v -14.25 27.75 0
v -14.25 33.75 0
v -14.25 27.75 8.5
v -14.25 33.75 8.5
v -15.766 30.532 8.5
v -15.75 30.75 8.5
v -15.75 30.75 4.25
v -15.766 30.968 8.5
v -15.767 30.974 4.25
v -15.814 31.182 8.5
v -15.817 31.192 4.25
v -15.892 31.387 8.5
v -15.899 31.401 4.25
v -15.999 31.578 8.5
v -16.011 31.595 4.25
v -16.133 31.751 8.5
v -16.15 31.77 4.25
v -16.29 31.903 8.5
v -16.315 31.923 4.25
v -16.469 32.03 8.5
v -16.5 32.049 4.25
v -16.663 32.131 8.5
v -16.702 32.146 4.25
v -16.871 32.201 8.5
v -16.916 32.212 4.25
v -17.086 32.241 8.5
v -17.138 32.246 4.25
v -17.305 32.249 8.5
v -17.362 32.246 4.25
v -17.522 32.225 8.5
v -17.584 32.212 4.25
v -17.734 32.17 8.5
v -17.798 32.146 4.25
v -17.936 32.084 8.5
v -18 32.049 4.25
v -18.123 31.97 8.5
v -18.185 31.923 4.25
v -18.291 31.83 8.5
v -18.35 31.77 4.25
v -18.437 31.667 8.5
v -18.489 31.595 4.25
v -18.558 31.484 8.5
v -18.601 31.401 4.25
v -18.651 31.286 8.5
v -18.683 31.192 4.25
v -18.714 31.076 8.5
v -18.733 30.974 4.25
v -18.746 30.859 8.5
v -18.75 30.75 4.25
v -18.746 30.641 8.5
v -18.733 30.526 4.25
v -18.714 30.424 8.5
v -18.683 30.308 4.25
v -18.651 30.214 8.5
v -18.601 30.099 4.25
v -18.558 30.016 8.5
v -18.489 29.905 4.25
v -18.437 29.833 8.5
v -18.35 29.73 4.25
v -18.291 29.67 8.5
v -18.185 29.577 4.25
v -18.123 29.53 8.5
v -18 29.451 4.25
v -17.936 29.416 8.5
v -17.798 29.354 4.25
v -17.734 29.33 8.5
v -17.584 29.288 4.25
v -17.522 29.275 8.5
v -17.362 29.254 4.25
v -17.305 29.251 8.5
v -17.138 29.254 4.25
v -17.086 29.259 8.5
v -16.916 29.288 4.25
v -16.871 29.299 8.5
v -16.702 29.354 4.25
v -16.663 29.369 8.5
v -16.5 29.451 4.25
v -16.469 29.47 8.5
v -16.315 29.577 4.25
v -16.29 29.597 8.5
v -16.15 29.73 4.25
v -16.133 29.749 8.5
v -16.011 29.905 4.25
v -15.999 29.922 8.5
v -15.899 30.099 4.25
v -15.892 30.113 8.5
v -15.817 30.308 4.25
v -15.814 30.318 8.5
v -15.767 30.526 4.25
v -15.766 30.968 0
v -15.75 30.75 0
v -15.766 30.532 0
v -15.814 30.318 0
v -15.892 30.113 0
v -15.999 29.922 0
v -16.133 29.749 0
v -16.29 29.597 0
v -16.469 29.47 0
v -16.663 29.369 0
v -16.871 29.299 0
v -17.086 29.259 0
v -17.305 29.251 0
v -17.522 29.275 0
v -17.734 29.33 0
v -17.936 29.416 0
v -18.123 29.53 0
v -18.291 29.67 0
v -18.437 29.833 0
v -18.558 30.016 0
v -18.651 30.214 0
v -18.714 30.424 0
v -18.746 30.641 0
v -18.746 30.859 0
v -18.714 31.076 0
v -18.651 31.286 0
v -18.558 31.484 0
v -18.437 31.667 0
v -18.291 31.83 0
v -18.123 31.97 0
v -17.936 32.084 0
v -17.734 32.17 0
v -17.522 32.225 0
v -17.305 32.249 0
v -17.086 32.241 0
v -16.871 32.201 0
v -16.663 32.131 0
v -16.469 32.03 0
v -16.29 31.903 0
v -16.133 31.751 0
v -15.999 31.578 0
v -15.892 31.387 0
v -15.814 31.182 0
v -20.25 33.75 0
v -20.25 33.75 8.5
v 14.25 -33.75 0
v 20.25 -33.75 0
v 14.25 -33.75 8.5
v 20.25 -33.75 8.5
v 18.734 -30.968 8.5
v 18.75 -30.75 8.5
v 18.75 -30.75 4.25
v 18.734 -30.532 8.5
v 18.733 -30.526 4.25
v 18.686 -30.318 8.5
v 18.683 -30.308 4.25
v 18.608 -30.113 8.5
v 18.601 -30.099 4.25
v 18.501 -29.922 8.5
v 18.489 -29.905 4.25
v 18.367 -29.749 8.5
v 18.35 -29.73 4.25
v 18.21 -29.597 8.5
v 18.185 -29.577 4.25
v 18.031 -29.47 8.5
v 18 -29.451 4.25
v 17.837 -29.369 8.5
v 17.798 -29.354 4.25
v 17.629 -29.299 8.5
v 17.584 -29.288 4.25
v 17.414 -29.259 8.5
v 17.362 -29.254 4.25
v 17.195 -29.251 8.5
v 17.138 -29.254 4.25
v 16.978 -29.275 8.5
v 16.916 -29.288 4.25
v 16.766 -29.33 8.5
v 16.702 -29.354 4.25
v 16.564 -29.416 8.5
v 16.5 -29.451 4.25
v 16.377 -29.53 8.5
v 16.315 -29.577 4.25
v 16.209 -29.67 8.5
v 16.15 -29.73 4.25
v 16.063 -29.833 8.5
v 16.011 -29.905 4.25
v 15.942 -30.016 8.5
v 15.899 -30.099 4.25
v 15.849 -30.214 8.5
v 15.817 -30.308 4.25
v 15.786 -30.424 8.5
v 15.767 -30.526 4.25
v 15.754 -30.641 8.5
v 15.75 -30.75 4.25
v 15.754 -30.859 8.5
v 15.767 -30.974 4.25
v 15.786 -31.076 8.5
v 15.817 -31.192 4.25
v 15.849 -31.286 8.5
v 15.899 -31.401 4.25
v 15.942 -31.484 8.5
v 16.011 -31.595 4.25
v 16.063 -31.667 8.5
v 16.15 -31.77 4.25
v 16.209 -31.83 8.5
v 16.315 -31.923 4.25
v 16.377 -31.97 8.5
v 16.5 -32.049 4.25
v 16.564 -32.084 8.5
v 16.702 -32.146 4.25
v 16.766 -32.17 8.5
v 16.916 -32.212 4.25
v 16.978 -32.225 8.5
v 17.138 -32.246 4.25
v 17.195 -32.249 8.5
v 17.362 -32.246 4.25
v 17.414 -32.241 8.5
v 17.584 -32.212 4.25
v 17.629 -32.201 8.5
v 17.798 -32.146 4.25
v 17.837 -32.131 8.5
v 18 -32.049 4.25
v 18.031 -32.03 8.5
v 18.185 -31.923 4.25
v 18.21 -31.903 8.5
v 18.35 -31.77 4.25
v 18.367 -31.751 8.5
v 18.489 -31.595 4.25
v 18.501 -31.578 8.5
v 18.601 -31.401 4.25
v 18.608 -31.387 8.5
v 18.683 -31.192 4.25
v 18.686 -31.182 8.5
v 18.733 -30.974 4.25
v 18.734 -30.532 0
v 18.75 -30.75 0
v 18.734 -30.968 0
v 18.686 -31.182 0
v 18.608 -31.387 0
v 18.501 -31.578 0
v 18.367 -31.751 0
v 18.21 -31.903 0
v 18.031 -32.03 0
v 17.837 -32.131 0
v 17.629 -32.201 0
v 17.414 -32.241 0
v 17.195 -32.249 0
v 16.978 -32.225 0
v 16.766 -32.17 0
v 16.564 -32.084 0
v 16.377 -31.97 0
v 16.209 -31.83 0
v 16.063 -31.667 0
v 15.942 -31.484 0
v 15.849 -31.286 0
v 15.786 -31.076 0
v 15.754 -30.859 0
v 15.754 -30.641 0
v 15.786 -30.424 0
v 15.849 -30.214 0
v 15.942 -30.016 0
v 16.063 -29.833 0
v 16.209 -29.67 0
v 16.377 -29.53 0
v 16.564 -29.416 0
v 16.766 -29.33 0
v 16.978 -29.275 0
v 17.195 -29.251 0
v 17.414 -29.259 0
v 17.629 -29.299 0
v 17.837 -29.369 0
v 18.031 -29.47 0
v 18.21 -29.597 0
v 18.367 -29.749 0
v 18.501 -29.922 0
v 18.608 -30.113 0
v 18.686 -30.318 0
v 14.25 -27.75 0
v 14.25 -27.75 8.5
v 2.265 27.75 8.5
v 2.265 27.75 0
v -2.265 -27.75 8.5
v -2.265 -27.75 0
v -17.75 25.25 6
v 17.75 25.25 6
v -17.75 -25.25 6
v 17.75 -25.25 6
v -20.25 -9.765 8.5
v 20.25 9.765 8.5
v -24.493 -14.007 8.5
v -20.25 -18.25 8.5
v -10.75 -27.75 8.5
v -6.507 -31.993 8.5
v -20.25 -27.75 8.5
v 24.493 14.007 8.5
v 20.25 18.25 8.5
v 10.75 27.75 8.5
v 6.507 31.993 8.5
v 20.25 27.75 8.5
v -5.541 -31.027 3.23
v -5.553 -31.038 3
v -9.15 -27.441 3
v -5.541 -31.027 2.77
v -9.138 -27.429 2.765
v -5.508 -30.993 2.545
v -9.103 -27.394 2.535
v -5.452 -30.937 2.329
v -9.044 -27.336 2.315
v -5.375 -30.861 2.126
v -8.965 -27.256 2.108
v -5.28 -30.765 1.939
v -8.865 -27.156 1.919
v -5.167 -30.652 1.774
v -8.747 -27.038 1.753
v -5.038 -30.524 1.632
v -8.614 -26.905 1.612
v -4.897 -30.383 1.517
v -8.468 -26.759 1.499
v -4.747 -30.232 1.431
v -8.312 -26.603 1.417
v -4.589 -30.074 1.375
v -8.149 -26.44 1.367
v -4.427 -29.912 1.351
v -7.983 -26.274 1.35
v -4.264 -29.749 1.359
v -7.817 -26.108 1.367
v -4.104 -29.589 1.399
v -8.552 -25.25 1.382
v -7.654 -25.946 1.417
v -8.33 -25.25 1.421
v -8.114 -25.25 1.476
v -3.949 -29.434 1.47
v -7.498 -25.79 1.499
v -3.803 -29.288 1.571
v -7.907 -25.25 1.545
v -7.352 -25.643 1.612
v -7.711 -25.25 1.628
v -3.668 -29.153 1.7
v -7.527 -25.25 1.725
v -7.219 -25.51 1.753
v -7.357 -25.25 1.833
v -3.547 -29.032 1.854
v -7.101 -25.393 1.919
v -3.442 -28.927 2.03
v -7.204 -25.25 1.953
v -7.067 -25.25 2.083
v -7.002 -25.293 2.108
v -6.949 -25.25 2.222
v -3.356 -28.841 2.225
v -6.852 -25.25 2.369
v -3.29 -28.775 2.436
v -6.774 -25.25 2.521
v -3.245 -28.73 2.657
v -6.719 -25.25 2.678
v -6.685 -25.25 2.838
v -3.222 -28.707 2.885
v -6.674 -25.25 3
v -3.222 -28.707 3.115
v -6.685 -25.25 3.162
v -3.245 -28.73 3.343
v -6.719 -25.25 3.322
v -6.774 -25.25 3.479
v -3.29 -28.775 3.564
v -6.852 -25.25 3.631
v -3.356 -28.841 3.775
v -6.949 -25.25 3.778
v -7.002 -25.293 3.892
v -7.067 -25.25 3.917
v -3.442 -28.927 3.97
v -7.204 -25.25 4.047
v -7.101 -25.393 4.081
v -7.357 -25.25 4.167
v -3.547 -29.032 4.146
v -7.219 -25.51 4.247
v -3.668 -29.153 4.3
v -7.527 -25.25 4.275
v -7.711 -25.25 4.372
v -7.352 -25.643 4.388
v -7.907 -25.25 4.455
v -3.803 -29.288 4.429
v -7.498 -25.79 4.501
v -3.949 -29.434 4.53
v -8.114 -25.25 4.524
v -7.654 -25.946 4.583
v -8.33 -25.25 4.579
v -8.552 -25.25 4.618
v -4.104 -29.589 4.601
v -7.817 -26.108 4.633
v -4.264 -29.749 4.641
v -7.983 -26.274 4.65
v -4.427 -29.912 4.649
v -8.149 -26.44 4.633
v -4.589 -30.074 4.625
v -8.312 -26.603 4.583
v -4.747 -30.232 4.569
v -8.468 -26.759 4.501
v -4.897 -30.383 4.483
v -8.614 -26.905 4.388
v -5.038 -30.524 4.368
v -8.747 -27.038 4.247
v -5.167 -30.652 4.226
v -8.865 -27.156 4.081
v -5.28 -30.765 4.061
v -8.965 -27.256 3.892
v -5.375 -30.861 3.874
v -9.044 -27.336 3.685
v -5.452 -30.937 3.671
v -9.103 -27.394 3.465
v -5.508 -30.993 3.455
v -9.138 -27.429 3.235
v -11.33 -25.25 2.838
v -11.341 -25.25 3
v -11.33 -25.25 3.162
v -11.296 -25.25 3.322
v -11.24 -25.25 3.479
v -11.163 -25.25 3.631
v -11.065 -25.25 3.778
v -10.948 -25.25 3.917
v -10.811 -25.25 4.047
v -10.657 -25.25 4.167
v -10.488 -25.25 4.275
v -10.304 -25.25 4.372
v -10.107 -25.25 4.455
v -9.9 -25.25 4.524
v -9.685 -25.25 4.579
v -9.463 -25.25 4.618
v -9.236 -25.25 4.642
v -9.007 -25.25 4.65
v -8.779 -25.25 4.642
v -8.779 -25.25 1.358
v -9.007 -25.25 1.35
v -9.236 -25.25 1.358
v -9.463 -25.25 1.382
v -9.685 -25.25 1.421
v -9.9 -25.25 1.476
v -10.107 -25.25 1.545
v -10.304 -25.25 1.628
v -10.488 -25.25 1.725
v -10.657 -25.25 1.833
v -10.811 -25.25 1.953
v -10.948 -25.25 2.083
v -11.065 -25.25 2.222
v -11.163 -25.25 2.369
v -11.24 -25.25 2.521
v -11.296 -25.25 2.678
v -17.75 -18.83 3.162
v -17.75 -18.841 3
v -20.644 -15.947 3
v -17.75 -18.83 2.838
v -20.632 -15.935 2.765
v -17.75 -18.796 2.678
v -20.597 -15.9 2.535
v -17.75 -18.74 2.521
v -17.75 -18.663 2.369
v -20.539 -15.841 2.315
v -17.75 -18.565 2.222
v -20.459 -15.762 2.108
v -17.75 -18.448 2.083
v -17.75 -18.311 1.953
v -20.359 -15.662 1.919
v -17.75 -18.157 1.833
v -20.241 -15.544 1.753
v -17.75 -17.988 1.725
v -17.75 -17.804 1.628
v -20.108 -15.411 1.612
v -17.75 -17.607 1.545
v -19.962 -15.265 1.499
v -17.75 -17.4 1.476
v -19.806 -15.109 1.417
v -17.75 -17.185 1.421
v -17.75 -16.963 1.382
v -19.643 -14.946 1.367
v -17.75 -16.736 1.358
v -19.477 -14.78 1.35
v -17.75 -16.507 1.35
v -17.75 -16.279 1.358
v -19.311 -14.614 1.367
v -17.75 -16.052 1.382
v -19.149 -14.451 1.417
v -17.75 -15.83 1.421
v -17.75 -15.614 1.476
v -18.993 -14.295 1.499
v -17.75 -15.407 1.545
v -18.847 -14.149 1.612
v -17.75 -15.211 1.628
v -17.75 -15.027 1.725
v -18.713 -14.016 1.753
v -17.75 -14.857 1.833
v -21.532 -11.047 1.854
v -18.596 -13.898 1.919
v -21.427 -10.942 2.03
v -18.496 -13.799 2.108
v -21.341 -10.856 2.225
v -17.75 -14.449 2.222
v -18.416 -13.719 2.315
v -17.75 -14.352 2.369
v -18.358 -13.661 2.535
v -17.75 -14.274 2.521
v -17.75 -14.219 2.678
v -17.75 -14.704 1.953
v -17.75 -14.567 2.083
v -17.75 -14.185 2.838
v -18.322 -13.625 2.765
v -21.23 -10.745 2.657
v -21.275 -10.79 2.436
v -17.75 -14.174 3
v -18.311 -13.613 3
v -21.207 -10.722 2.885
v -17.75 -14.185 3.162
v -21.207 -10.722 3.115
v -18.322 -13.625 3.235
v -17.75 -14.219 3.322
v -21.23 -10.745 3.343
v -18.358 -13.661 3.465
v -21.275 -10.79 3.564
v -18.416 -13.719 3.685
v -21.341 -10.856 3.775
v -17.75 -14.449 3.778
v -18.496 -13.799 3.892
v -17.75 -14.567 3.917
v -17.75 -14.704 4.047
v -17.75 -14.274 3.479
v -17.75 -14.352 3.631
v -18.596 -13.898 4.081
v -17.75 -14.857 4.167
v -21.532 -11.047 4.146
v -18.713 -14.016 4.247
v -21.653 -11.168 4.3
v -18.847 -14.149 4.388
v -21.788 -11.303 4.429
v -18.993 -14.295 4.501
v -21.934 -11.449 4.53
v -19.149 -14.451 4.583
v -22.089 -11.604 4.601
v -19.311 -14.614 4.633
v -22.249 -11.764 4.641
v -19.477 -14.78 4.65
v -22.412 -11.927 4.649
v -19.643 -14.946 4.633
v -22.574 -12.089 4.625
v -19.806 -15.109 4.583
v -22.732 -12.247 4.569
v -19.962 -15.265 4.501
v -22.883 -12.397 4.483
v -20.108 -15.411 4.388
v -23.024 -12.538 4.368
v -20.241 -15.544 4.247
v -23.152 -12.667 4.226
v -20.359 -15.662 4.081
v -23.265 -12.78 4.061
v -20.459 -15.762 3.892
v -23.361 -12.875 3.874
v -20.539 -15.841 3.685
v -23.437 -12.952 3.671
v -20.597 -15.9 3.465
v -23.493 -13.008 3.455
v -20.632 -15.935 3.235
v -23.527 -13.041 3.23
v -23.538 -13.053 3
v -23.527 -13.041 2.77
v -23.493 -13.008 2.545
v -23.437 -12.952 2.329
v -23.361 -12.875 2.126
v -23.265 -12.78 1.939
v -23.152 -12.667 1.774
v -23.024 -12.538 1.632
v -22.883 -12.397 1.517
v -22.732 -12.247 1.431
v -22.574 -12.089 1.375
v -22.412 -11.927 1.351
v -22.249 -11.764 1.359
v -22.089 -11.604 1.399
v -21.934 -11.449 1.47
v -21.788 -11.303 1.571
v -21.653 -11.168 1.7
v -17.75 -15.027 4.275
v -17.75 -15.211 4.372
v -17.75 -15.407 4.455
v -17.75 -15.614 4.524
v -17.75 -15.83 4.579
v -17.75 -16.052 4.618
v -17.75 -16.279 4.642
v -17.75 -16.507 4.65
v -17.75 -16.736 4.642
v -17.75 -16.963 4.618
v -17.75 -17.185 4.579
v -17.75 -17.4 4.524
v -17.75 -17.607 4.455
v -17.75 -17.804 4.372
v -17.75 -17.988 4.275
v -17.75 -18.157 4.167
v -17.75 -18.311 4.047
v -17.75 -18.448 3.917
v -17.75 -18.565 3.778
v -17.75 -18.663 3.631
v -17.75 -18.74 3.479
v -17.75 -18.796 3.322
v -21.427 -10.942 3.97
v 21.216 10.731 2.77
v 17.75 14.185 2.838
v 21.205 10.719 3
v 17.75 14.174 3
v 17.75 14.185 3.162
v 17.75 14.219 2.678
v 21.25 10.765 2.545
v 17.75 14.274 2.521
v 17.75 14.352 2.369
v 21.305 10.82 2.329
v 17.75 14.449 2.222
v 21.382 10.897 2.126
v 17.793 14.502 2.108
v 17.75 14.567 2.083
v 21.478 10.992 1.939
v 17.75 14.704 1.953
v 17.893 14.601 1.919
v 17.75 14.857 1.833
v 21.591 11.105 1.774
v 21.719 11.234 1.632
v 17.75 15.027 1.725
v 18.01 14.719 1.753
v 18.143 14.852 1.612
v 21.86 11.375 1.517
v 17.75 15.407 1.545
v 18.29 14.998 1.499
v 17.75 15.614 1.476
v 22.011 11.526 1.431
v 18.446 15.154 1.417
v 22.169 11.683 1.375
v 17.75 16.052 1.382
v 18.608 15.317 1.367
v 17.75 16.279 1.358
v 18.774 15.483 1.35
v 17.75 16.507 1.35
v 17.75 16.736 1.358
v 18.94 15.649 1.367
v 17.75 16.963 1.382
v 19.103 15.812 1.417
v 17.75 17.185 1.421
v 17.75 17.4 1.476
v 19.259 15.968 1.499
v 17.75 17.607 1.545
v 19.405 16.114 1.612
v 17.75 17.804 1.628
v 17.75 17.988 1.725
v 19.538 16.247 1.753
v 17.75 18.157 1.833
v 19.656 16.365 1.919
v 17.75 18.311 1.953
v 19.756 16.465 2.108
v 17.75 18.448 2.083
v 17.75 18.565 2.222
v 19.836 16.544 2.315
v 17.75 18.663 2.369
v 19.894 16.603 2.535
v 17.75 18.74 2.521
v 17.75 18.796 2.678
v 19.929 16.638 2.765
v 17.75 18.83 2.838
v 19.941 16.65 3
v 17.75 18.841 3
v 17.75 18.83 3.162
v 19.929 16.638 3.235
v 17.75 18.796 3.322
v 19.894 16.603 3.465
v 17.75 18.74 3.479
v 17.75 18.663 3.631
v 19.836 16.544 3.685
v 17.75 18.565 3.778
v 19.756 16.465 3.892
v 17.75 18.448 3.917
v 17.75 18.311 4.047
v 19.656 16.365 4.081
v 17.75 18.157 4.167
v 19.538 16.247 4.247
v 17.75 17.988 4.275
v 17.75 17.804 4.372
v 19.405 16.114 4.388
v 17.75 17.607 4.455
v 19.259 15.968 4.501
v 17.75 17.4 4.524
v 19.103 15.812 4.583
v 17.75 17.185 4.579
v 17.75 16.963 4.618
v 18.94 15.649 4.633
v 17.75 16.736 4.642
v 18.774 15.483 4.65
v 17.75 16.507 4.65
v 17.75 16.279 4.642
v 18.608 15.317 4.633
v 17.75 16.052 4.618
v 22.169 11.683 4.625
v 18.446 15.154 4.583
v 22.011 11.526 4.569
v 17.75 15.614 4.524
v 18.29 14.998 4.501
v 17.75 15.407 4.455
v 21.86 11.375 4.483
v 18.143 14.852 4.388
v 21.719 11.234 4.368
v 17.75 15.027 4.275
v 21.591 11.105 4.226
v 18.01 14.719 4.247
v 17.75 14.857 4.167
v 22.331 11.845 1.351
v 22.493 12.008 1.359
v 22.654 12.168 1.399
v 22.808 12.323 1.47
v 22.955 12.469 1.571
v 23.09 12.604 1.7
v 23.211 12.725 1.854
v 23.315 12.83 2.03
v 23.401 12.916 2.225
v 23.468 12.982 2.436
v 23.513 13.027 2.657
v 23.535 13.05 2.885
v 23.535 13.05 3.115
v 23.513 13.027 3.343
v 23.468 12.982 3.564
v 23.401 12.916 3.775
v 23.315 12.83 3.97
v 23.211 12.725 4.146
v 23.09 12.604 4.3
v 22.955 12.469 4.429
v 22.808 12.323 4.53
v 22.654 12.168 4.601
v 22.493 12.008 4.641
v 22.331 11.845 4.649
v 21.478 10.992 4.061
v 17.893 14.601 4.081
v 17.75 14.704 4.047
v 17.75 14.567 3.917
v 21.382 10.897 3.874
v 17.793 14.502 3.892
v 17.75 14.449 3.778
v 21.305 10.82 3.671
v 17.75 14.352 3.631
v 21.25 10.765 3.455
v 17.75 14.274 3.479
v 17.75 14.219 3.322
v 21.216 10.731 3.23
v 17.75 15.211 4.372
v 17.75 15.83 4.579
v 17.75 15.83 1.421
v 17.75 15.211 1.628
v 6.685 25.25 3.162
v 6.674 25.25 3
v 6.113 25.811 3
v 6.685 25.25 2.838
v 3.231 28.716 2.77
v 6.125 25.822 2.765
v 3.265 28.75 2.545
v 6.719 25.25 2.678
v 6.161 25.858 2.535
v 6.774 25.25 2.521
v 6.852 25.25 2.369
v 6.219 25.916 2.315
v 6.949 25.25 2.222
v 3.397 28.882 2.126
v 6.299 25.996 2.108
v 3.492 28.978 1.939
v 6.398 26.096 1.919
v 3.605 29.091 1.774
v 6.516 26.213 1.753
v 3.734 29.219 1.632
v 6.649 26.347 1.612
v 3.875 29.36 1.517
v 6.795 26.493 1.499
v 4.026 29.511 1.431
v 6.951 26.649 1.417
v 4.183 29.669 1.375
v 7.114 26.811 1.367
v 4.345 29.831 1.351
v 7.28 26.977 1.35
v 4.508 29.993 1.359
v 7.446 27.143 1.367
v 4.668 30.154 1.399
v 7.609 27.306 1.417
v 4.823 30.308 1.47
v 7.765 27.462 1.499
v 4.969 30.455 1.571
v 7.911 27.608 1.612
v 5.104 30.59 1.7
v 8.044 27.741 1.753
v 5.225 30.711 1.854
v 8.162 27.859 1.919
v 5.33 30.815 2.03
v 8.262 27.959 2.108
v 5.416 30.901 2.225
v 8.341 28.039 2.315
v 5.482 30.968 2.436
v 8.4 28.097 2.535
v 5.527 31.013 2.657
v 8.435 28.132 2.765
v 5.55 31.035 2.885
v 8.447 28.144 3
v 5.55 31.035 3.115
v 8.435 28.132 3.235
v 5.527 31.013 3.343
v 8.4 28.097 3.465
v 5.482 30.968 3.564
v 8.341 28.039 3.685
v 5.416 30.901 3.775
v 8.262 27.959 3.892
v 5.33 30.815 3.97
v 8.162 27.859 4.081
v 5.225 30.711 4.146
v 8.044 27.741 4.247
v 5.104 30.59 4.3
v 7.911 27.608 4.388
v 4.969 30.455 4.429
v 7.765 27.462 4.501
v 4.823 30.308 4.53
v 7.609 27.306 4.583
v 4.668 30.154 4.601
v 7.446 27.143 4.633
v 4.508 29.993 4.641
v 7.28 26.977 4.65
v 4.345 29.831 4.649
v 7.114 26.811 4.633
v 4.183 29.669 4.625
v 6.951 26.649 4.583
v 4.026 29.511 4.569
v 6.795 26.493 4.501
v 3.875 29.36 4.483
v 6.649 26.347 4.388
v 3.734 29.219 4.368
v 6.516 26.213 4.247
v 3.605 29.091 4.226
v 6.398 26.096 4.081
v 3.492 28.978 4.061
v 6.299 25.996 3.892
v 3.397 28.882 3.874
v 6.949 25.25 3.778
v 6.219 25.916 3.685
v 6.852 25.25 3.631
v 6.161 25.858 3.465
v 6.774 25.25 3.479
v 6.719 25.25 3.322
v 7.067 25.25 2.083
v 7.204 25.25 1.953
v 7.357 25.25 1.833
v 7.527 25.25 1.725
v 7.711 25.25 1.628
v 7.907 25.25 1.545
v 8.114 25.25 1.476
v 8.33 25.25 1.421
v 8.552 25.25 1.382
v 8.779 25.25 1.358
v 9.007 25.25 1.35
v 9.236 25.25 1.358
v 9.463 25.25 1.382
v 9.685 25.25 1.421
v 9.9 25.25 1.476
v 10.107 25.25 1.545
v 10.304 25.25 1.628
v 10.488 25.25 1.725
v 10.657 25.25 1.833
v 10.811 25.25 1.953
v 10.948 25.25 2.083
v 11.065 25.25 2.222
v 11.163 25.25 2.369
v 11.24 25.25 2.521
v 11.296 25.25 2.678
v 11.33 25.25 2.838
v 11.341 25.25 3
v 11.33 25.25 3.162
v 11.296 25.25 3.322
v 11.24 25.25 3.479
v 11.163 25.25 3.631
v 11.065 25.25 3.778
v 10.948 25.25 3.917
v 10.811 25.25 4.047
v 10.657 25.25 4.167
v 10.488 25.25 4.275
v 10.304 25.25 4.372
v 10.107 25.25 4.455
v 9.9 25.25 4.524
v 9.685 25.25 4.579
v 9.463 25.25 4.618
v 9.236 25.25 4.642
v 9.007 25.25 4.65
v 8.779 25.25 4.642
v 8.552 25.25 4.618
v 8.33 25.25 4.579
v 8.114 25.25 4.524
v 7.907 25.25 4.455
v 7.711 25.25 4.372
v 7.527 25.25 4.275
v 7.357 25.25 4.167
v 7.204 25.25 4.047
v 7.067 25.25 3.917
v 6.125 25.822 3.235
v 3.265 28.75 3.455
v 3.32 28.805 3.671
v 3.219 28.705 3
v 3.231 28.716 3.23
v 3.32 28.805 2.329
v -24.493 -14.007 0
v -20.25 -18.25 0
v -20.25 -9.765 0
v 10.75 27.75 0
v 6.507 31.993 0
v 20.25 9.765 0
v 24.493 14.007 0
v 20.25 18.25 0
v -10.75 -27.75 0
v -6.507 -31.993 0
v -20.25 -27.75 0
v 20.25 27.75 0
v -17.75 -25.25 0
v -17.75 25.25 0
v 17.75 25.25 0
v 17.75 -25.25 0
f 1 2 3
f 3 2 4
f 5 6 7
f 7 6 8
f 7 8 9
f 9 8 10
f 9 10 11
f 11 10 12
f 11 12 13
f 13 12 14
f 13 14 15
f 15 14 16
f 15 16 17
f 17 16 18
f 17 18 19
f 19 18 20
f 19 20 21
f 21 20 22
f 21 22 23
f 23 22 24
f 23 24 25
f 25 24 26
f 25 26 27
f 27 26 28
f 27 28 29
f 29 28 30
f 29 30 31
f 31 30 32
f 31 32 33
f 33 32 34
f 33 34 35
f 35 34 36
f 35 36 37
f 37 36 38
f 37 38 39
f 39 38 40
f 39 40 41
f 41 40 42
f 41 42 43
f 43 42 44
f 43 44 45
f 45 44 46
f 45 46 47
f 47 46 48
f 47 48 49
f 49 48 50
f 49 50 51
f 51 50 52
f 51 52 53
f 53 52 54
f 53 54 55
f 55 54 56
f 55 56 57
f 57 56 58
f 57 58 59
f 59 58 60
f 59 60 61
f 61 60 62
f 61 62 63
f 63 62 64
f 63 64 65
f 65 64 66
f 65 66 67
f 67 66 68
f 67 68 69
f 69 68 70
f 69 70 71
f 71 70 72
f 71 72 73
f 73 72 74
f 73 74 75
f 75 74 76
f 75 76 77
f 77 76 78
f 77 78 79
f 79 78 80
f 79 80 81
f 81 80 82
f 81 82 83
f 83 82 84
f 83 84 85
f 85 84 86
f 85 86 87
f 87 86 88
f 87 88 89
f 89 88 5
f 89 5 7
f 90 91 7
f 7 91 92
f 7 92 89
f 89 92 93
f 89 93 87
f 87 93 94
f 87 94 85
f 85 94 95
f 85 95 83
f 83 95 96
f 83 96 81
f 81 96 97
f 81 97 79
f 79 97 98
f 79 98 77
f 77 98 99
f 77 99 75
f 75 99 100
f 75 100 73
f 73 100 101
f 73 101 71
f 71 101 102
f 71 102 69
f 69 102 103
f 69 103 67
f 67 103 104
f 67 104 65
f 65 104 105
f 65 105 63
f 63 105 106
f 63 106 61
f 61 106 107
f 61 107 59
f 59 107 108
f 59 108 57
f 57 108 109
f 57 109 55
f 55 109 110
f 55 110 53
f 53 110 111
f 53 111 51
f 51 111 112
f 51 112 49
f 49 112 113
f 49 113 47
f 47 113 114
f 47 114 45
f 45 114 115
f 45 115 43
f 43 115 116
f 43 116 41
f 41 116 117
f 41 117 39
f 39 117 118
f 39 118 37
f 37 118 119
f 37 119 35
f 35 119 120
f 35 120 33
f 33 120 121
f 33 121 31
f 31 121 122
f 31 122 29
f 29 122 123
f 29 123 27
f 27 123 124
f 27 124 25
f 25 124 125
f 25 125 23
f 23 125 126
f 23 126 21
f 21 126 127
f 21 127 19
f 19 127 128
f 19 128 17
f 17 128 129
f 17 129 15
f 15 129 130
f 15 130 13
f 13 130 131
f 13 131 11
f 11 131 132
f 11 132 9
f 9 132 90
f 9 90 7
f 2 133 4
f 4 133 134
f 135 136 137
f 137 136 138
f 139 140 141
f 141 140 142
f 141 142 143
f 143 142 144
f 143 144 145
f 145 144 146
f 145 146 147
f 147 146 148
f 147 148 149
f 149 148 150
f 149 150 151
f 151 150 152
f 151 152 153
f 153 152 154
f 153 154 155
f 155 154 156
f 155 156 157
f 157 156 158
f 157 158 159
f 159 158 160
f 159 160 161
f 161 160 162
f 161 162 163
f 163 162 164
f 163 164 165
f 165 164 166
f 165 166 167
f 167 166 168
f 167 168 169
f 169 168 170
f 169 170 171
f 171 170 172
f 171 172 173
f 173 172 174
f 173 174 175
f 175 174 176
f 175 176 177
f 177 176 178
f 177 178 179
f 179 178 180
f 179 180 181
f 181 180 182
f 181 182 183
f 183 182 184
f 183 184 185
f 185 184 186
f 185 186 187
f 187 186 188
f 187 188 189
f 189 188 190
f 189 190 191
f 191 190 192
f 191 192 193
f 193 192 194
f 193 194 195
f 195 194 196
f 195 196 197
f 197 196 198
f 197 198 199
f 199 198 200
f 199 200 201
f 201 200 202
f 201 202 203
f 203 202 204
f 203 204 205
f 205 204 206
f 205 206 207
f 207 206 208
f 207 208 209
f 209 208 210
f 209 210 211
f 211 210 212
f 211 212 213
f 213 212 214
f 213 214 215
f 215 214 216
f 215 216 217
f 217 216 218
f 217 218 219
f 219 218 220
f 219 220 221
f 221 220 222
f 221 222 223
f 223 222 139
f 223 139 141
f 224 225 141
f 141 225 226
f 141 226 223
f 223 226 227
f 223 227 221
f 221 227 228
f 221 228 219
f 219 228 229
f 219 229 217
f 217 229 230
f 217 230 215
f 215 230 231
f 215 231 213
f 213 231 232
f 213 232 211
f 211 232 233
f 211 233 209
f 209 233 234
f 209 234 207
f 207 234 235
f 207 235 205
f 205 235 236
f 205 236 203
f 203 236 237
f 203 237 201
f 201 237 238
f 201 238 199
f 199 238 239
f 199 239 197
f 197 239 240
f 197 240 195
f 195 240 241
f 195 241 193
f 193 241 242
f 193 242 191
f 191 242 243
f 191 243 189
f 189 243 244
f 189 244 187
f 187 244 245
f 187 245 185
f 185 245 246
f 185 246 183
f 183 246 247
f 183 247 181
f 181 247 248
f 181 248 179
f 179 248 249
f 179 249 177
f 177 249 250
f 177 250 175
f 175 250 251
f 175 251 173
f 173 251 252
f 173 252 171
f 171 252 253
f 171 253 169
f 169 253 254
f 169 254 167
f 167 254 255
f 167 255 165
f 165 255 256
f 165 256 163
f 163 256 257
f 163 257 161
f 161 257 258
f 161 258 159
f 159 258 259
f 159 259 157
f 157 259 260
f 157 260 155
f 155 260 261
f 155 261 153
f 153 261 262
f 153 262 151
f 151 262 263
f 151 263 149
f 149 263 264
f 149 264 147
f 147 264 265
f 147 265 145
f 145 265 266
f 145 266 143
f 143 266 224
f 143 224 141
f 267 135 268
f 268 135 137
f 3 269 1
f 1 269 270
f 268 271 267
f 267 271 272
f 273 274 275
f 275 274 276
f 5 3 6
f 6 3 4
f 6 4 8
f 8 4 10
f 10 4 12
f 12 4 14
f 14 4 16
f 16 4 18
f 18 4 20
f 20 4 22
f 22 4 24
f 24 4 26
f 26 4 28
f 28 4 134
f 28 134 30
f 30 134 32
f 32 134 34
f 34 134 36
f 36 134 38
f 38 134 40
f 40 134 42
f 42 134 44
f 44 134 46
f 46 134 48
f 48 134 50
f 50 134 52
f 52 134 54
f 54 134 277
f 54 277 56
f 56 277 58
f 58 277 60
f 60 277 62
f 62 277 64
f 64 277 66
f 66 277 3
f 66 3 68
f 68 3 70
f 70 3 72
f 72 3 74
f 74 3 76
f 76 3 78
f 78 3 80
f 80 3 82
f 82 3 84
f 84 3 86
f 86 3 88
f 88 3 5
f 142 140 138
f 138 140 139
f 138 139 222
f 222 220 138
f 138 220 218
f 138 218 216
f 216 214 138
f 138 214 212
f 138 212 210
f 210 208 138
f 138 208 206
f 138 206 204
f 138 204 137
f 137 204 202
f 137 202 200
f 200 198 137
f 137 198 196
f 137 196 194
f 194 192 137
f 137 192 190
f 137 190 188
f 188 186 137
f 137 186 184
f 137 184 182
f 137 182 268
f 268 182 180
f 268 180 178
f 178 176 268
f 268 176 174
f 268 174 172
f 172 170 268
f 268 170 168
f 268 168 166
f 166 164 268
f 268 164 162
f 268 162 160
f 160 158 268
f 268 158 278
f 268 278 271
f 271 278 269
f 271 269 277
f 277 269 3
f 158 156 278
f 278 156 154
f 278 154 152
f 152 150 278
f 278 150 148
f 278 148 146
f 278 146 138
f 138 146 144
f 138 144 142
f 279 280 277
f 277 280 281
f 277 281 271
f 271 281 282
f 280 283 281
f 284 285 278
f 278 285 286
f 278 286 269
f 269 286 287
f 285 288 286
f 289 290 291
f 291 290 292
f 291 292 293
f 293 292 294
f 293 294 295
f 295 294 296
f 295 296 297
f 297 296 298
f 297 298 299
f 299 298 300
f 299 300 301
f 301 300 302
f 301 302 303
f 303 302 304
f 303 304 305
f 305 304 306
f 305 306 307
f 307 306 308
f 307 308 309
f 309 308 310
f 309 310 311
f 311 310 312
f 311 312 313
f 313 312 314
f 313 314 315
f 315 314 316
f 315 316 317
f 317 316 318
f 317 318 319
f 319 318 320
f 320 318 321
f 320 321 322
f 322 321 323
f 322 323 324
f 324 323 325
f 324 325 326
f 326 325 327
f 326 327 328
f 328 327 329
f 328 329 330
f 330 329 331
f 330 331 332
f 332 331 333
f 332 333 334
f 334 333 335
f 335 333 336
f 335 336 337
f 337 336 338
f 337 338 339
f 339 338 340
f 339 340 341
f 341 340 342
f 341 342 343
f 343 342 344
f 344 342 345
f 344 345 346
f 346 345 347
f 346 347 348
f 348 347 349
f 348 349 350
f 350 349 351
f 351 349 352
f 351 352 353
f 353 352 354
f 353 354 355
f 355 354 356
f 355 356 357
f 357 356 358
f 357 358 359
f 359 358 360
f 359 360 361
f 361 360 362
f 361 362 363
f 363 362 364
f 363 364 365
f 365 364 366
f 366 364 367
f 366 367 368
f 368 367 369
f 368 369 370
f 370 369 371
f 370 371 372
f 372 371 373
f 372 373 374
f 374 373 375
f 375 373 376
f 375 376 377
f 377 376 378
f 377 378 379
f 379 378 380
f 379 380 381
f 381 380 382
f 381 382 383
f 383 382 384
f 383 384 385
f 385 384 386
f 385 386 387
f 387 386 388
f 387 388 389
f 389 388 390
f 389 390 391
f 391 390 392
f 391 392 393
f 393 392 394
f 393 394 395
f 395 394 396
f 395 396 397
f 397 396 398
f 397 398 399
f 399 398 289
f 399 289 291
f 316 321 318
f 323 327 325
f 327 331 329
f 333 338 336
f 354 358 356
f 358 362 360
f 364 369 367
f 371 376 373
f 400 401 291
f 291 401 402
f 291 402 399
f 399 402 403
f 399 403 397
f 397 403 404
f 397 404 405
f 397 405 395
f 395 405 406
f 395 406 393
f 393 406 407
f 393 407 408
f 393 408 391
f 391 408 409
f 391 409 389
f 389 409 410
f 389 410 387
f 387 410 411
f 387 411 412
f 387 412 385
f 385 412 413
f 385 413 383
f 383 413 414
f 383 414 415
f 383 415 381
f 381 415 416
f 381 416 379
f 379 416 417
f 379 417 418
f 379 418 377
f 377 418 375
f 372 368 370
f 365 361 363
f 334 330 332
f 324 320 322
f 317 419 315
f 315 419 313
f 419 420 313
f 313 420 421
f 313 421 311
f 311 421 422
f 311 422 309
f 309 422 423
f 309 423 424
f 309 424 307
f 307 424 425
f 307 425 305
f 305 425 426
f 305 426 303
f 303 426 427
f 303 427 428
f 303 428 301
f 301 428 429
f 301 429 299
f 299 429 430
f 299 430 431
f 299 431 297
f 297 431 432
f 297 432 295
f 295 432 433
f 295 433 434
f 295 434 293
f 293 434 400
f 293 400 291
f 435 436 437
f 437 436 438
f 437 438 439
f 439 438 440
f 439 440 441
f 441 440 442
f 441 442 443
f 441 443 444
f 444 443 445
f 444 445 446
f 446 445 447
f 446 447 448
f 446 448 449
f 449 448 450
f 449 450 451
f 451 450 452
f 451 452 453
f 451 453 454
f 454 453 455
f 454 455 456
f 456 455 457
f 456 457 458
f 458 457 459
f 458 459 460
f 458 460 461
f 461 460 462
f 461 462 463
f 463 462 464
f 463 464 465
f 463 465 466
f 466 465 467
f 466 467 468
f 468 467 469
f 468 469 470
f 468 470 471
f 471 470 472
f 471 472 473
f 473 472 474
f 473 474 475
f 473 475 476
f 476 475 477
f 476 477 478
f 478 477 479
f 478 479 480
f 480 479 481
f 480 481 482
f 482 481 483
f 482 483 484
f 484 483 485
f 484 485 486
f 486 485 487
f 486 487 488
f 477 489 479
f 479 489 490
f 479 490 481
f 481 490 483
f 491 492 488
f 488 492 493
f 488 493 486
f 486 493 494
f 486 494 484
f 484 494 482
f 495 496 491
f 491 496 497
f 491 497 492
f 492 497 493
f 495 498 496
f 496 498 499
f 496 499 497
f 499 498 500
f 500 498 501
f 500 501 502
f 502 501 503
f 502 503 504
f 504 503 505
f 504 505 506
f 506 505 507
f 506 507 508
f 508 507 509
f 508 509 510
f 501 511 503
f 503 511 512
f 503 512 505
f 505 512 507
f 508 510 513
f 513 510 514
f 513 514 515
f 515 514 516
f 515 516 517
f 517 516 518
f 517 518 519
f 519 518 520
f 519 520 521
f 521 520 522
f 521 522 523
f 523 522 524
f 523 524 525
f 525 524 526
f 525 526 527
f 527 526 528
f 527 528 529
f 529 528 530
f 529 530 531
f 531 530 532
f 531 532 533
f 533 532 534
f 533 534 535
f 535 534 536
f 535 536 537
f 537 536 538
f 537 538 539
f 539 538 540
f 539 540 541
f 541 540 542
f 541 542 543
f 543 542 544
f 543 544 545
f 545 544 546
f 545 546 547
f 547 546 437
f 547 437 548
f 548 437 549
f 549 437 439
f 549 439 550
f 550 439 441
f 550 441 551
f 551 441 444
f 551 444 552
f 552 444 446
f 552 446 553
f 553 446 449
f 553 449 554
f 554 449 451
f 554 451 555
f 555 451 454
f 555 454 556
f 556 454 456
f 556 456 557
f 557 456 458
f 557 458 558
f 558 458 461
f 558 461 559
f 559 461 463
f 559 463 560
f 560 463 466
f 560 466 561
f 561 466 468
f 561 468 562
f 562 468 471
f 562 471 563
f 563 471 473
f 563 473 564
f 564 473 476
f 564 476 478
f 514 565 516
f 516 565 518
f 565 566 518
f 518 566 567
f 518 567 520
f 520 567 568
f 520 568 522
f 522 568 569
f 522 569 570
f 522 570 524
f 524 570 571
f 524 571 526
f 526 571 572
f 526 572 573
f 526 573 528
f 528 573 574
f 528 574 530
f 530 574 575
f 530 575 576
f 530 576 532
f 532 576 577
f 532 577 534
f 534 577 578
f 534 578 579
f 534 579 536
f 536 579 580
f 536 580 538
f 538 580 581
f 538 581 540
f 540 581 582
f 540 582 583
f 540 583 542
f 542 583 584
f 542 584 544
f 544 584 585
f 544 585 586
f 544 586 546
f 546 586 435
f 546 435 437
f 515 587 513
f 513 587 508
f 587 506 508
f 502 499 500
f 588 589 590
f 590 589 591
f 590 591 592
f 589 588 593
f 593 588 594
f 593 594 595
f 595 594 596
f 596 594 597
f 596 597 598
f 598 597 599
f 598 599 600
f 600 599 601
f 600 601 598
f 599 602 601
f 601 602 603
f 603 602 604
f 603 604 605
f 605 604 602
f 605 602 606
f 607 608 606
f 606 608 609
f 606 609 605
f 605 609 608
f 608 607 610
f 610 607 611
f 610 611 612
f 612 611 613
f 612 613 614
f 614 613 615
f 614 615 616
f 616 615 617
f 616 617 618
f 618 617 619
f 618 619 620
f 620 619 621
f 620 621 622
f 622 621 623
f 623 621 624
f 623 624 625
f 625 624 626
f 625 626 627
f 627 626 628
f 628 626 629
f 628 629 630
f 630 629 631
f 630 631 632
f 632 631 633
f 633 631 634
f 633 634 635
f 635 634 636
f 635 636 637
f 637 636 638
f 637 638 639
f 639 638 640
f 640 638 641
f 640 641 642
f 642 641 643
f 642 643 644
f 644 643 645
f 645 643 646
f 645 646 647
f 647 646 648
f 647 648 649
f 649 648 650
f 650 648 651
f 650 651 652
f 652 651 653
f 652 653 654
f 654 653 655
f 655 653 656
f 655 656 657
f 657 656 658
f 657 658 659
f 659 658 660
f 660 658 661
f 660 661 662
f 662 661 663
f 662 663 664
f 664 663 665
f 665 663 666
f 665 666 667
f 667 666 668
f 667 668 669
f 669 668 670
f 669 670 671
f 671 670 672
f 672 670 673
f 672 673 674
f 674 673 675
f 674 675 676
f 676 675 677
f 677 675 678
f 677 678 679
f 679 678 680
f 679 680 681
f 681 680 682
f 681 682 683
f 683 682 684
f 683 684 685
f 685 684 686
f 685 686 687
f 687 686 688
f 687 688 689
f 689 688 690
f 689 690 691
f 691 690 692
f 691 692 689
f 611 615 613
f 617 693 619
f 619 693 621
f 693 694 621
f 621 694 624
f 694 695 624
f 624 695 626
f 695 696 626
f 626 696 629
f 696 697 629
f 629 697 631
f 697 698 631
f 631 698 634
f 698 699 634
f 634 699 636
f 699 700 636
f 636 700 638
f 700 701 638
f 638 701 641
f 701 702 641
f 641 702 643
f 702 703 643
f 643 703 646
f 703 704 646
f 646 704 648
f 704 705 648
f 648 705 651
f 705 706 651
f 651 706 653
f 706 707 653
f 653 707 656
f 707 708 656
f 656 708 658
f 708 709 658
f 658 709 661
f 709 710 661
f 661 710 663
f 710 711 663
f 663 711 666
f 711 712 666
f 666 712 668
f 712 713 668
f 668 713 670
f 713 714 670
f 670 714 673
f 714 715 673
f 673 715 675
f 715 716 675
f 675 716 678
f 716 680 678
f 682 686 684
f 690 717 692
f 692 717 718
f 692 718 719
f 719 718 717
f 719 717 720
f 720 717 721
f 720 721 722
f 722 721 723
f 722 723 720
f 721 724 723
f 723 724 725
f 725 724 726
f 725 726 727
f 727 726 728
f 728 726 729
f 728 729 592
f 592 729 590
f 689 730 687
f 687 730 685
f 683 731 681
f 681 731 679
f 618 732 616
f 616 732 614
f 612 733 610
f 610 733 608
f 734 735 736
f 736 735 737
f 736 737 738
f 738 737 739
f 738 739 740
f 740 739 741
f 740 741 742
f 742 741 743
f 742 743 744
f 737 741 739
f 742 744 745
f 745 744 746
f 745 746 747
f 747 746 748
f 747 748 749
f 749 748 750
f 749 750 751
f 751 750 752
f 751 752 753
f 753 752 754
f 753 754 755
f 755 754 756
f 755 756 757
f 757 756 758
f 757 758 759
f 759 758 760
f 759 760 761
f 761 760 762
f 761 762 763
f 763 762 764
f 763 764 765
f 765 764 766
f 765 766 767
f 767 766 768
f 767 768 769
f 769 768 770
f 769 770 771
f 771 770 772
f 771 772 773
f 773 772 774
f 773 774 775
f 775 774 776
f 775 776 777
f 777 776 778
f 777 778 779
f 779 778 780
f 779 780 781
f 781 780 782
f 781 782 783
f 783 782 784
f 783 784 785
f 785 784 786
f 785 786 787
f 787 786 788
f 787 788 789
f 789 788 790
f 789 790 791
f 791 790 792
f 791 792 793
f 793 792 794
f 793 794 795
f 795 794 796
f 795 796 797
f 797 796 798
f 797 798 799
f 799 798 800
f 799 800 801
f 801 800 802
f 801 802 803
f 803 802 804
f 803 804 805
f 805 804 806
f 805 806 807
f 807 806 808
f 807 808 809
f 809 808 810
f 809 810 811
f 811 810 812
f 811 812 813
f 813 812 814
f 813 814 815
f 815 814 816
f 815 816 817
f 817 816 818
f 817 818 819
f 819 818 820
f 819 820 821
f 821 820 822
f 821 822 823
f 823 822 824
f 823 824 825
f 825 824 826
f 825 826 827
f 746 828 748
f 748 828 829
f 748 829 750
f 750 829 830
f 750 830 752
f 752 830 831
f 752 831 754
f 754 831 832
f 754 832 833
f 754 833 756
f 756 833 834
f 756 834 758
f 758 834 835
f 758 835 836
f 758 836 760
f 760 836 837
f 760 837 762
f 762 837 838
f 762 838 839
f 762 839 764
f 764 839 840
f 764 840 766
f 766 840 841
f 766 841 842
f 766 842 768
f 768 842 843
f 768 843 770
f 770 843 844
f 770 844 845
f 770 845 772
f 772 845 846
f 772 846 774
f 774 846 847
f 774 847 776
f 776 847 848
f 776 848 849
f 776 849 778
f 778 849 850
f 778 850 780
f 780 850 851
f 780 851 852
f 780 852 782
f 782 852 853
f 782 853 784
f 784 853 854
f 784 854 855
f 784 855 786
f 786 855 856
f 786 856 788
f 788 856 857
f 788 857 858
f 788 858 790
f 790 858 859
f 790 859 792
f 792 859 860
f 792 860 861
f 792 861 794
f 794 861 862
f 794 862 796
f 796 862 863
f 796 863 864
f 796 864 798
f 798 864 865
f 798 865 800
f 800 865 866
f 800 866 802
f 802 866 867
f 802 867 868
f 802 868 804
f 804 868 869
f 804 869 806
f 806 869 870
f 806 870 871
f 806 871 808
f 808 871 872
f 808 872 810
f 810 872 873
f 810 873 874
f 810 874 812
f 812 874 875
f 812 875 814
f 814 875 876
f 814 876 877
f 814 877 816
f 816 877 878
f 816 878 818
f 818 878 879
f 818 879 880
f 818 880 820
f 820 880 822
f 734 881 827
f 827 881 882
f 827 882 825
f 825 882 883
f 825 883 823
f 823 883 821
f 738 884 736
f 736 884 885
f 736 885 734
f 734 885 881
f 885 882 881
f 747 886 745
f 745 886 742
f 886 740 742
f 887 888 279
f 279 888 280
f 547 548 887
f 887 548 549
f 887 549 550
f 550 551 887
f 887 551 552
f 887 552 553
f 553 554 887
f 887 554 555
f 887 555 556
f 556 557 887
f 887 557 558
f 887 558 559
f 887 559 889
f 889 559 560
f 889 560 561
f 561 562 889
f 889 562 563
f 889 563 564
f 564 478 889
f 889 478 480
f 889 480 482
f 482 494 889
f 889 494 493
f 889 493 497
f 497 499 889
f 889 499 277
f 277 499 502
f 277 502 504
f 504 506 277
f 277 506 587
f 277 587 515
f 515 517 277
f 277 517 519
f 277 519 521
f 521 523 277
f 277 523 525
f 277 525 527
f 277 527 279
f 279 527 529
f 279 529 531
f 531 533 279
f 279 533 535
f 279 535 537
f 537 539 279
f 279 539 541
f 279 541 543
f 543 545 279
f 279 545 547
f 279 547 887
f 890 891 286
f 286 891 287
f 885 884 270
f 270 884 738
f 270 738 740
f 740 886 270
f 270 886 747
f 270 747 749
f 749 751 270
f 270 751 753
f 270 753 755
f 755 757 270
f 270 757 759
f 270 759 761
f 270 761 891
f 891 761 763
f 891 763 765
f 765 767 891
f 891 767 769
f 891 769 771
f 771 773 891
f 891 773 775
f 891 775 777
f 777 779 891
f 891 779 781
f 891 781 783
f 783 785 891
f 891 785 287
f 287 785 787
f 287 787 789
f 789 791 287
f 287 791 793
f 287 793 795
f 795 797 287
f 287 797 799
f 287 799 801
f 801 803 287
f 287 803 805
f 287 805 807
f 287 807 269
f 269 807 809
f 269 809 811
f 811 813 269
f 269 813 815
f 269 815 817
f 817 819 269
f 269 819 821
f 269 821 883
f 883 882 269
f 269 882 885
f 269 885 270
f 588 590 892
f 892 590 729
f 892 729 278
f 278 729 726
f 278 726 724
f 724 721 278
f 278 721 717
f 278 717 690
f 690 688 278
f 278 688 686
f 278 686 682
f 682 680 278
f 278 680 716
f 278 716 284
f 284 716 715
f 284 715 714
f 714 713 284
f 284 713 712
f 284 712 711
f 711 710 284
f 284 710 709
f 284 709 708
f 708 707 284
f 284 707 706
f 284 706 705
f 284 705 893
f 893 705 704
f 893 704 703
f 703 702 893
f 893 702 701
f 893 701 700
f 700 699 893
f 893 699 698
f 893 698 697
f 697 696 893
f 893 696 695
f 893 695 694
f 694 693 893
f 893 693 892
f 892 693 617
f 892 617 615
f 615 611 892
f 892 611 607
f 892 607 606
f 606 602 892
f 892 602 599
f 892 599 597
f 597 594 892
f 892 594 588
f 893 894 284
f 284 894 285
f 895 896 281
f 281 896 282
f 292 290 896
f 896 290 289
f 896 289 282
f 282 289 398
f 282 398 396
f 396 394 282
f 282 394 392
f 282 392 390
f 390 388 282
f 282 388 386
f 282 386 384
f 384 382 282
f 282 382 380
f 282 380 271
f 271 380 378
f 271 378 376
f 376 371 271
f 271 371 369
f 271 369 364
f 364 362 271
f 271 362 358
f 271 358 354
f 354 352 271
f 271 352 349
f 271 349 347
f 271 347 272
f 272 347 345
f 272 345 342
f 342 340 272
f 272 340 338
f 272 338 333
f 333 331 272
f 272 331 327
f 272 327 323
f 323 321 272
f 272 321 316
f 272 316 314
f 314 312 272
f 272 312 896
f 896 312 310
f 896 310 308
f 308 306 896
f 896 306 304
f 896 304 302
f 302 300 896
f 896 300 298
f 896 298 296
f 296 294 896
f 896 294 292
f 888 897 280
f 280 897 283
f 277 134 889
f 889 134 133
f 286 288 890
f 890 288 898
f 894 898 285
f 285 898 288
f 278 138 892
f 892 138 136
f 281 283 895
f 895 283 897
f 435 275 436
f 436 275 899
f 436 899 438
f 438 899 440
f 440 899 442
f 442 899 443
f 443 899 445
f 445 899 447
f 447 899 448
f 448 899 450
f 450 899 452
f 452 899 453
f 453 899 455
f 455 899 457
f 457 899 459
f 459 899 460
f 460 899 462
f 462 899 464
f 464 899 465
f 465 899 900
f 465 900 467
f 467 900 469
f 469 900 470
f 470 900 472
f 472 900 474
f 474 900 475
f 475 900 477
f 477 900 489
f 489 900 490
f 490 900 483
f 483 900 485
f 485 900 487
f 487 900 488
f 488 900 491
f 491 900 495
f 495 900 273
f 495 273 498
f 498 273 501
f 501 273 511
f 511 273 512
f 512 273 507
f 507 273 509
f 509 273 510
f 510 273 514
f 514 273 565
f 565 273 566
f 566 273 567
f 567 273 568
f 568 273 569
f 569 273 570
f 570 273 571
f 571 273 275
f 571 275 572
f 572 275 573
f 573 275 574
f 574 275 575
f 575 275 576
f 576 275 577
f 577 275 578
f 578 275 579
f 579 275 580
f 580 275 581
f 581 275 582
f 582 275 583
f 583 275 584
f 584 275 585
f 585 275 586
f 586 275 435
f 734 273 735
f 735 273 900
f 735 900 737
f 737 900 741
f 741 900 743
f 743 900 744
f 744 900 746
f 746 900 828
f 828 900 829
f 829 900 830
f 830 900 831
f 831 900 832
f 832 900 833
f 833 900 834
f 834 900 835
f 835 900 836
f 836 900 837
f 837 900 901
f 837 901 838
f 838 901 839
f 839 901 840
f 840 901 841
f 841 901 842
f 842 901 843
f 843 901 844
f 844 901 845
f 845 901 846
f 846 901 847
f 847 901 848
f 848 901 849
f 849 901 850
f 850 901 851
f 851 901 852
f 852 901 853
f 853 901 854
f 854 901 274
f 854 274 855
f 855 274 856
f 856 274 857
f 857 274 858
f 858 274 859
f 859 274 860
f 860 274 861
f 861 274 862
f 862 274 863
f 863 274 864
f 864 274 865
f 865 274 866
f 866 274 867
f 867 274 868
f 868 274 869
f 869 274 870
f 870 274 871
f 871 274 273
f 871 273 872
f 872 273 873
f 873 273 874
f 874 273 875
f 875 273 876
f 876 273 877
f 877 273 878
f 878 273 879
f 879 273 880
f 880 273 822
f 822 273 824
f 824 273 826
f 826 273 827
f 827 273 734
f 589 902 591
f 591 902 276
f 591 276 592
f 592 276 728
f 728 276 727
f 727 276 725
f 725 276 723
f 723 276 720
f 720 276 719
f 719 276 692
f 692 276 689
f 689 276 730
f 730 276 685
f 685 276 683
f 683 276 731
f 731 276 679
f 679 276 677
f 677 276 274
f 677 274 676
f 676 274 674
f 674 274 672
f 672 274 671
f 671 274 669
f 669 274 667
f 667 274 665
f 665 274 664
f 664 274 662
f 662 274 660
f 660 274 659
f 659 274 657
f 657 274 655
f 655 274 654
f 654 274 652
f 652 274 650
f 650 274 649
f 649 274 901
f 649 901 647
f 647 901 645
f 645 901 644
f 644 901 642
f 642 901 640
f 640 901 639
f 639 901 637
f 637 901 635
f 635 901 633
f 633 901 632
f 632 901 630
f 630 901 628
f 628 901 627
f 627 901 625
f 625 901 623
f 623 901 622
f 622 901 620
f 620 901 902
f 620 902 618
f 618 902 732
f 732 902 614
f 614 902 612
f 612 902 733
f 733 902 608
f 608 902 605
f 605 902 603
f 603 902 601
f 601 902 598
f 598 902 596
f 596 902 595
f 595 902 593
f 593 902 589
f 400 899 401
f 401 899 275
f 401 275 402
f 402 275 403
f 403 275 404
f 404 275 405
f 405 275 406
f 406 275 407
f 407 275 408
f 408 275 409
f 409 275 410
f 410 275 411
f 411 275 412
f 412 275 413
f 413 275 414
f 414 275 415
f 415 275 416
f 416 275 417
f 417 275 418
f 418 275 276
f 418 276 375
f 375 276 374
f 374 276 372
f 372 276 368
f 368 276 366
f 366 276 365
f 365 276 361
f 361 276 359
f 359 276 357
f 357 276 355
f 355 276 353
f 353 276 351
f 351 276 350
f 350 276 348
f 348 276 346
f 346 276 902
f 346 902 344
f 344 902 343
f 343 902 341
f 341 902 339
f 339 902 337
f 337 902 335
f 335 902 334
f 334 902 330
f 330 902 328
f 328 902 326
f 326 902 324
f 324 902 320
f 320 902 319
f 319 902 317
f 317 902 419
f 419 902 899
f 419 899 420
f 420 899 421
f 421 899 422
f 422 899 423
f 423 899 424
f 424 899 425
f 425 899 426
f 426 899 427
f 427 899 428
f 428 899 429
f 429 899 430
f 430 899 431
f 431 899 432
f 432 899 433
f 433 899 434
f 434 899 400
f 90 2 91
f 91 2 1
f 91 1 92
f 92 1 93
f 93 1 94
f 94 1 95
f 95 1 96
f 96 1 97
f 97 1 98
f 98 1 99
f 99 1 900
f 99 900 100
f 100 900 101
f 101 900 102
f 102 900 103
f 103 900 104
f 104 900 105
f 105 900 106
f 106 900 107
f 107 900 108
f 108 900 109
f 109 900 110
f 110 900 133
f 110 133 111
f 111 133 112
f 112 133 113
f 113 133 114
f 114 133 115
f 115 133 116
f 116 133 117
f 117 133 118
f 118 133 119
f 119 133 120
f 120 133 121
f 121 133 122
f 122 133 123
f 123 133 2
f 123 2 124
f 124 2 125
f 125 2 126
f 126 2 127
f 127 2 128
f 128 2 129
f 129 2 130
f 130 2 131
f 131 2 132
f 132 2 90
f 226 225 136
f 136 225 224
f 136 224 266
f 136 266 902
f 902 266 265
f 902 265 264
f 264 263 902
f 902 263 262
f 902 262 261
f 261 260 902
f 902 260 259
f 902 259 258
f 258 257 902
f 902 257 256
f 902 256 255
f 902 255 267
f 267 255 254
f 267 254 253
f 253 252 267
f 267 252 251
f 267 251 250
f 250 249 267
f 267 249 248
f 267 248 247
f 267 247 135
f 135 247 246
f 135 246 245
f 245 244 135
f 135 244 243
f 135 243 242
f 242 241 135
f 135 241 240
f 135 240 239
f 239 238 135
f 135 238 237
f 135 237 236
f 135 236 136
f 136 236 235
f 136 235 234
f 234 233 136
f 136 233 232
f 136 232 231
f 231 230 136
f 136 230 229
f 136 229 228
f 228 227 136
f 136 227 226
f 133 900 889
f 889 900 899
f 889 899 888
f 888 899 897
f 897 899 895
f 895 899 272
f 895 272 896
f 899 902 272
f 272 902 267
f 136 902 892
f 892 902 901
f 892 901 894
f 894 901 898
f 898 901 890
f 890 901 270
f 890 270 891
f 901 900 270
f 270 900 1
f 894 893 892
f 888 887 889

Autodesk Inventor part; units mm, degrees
ref_plane "YZ Plane" through (0, 0, 0) normal (1, 0, 0) x (0, 1, 0)
ref_plane "XZ Plane" through (0, 0, 0) normal (0, 1, 0) x (-1, 0, 0)
ref_plane "XY Plane" through (0, 0, 0) normal (0, 0, 1) x (1, 0, 0)
sketch "Skizze1" plane through (0, 0, 0) normal (0, 0, 1) x (1, 0, 0)
  line L0 (-17.75, -25.25) -> (17.75, -25.25)
  line L1 (17.75, -25.25) -> (17.75, 25.25)
  line L2 (17.75, 25.25) -> (-17.75, 25.25)
  line L3 (-17.75, 25.25) -> (-17.75, -25.25)
  line L4 (20.25, 27.75) -> (20.25, -27.75)
  line L5 (20.25, -27.75) -> (-20.25, -27.75)
  line L6 (-20.25, -27.75) -> (-20.25, 27.75)
  line L7 (-20.25, 27.75) -> (20.25, 27.75)
  point P0 (0, 0)
  point P1 (0, 25.25)
  point P2 (17.75, 0)
  dimension "d0" = 50.5
  dimension "d1" = 35.5
  dimension "d2" = 2.5
extrude "Extrusion1" [suppressed]
extrude "Extrusion2" add sketch "Skizze1" along normal blind 6
sketch "Skizze2" plane through (0, 0, -2.5) normal (0, 0, -1) x (-1, 0, 0)
  circle A0 centre (0, 0) radius 1.5
  dimension "d7" = 3
extrude "Extrusion3" [suppressed]
sketch "Skizze3" plane through (0, 0, 6) normal (0, 0, 1) x (1, 0, 0)
  line L0 (2.2647, 27.75) -> (10.75, 27.75)
  line L1 (10.75, 27.75) -> (6.5074, 31.9926)
  line L2 (6.5074, 31.9926) -> (2.2647, 27.75)
  line L3 (20.25, 18.25) -> (20.25, 9.7647)
  line L4 (20.25, 9.7647) -> (24.4926, 14.0074)
  line L5 (24.4926, 14.0074) -> (20.25, 18.25)
  line L6 (20.25, 27.75) -> (-20.25, 27.75) projected
  line L7 (20.25, -27.75) -> (20.25, 27.75) projected
  line L8 (4.386, 29.8713) -> (22.3713, 11.886) construction
  line L9 (-20.25, -9.7647) -> (-20.25, -18.25)
  line L10 (-20.25, -18.25) -> (-24.4926, -14.0074)
  line L11 (-24.4926, -14.0074) -> (-20.25, -9.7647)
  line L12 (-10.75, -27.75) -> (-2.2647, -27.75)
  line L13 (-2.2647, -27.75) -> (-6.5074, -31.9926)
  line L14 (-6.5074, -31.9926) -> (-10.75, -27.75)
  line L15 (-20.25, 27.75) -> (-20.25, -27.75) projected
  line L16 (-20.25, -27.75) -> (20.25, -27.75) projected
  line L17 (-22.3713, -11.886) -> (-4.386, -29.8713) construction
  line L18 (17.75, 25.25) -> (17.75, -25.25) projected
  line L19 (-17.75, -25.25) -> (-17.75, 25.25) projected
  line L20 (-17.75, 25.25) -> (17.75, 25.25) projected
  line L21 (17.75, -25.25) -> (-17.75, -25.25) projected
  point P0 (0, 0)
  dimension "d11" = 6
  dimension "d26" = 7
  dimension "d27" = 7
extrude "Extrusion4" add sketch "Skizze3" against normal blind 6 contours L2 L1 L0 | L9 L10 L11 | L5 L4 L3 | L12 L13 L14
sketch "Skizze4" plane through (6.5074, 31.9926, 0) normal (-0.7071, 0.7071, 0) x (-0.7071, -0.7071, 0)
  circle A0 centre (3, 3) radius 1.65
  line L0 (6, 0) -> (6, 6) construction
  line L1 (0, 6) -> (0, 0) construction
  line L2 (6, 0) -> (0, 0) construction
  line L3 (0, 0) -> (0, 6) construction
  line L4 (0, 6) -> (6, 6) construction
  line L5 (6, 6) -> (6, 0) construction
  point P0 (27.2236, 0)
  point P1 (0, 3)
  point P2 (3, 0)
  dimension "d28" = 3.3
extrude "Extrusion5" cut sketch "Skizze4" against normal up to surface (25.435 mm away)
sketch "Skizze7" plane through (-20.25, -9.7647, 0) normal (-0.7071, 0.7071, 0) x (-0.7071, -0.7071, 0)
  line L0 (0, 0) -> (0, 6) construction
  line L1 (6, 6) -> (6, 0) construction
  line L2 (0, 0) -> (6, 0) construction
  line L3 (6, 0) -> (6, 6) construction
  line L4 (6, 6) -> (0, 6) construction
  line L5 (0, 6) -> (0, 0) construction
  circle A0 centre (3, 3) radius 1.65
  point P0 (-21.2236, 0)
  point P1 (0, 3)
  point P2 (3, 6)
  dimension "d29" = 3.3
extrude "Extrusion8" cut sketch "Skizze7" against normal up to surface (25.435 mm away)
sketch "Skizze8" plane through (0, 0, 6) normal (0, 0, 1) x (1, 0, 0)
  line L0 (-20.25, 27.75) -> (2.2647, 27.75) projected
  line L1 (-20.25, 27.75) -> (-20.25, -9.7647)
  line L2 (-20.25, -9.7647) -> (-24.4926, -14.0074) projected
  line L3 (-20.25, -9.7647) -> (-24.4926, -14.0074)
  line L4 (-24.4926, -14.0074) -> (-20.25, -18.25)
  line L5 (-10.75, -27.75) -> (-20.25, -27.75) projected
  line L6 (-20.25, -18.25) -> (-20.25, -27.75)
  line L7 (-20.25, -27.75) -> (-10.75, -27.75)
  line L8 (-10.75, -27.75) -> (-6.5074, -31.9926) projected
  line L9 (-10.75, -27.75) -> (-6.5074, -31.9926)
  line L10 (-2.2647, -27.75) -> (-6.5074, -31.9926) projected
  line L11 (-6.5074, -31.9926) -> (-2.2647, -27.75)
  line L12 (-2.2647, -27.75) -> (20.25, -27.75) projected
  line L13 (-2.2647, -27.75) -> (20.25, -27.75)
  line L14 (20.25, 9.7647) -> (20.25, -27.75) projected
  line L15 (20.25, -27.75) -> (20.25, 9.7647)
  line L16 (24.4926, 14.0074) -> (20.25, 9.7647) projected
  line L17 (20.25, 9.7647) -> (24.4926, 14.0074)
  line L18 (20.25, 27.75) -> (20.25, 18.25) projected
  line L19 (24.4926, 14.0074) -> (20.25, 18.25)
  line L20 (20.25, 18.25) -> (20.25, 27.75)
  line L21 (10.75, 27.75) -> (20.25, 27.75) projected
  line L22 (20.25, 27.75) -> (10.75, 27.75)
  line L23 (2.2647, 27.75) -> (6.5074, 31.9926) projected
  line L24 (10.75, 27.75) -> (6.5074, 31.9926)
  line L25 (6.5074, 31.9926) -> (2.2647, 27.75)
  line L26 (2.2647, 27.75) -> (-20.25, 27.75)
  point P0 (0, 0)
extrude "Extrusion9" add sketch "Skizze8" along normal blind 2.5
sketch "Skizze11" plane through (0, 0, 8.5) normal (0, 0, 1) x (1, 0, 0)
  line L0 (-10.75, -27.75) -> (-20.25, -27.75) construction
  line L1 (20.25, 27.75) -> (20.25, 18.25) construction
  line L2 (-20.25, 27.75) -> (2.2647, 27.75) projected
  line L3 (-20.25, 27.75) -> (-14.25, 27.75)
  line L4 (-14.25, 27.75) -> (-14.25, 33.75)
  line L5 (-14.25, 33.75) -> (-20.25, 33.75)
  line L6 (-20.25, 33.75) -> (-20.25, 27.75)
  circle A0 centre (-17.25, 30.75) radius 1.5
  line L7 (20.25, -27.75) -> (-2.2647, -27.75) projected
  line L8 (20.25, -27.75) -> (14.25, -27.75)
  line L9 (14.25, -27.75) -> (14.25, -33.75)
  line L10 (14.25, -33.75) -> (20.25, -33.75)
  line L11 (20.25, -33.75) -> (20.25, -27.75)
  circle A1 centre (17.25, -30.75) radius 1.5
  point P0 (0, 0)
  point P1 (-20.25, 30.75)
  point P2 (-17.25, 33.75)
  point P3 (17.25, -27.75)
  point P4 (20.25, -30.75)
  dimension "d42" = 6
  dimension "d43" = 3
extrude "Extrusion12" add sketch "Skizze11" against normal up to surface (8.5 mm away)
equation "\"d27\" = d26"
properties part number "cage"
